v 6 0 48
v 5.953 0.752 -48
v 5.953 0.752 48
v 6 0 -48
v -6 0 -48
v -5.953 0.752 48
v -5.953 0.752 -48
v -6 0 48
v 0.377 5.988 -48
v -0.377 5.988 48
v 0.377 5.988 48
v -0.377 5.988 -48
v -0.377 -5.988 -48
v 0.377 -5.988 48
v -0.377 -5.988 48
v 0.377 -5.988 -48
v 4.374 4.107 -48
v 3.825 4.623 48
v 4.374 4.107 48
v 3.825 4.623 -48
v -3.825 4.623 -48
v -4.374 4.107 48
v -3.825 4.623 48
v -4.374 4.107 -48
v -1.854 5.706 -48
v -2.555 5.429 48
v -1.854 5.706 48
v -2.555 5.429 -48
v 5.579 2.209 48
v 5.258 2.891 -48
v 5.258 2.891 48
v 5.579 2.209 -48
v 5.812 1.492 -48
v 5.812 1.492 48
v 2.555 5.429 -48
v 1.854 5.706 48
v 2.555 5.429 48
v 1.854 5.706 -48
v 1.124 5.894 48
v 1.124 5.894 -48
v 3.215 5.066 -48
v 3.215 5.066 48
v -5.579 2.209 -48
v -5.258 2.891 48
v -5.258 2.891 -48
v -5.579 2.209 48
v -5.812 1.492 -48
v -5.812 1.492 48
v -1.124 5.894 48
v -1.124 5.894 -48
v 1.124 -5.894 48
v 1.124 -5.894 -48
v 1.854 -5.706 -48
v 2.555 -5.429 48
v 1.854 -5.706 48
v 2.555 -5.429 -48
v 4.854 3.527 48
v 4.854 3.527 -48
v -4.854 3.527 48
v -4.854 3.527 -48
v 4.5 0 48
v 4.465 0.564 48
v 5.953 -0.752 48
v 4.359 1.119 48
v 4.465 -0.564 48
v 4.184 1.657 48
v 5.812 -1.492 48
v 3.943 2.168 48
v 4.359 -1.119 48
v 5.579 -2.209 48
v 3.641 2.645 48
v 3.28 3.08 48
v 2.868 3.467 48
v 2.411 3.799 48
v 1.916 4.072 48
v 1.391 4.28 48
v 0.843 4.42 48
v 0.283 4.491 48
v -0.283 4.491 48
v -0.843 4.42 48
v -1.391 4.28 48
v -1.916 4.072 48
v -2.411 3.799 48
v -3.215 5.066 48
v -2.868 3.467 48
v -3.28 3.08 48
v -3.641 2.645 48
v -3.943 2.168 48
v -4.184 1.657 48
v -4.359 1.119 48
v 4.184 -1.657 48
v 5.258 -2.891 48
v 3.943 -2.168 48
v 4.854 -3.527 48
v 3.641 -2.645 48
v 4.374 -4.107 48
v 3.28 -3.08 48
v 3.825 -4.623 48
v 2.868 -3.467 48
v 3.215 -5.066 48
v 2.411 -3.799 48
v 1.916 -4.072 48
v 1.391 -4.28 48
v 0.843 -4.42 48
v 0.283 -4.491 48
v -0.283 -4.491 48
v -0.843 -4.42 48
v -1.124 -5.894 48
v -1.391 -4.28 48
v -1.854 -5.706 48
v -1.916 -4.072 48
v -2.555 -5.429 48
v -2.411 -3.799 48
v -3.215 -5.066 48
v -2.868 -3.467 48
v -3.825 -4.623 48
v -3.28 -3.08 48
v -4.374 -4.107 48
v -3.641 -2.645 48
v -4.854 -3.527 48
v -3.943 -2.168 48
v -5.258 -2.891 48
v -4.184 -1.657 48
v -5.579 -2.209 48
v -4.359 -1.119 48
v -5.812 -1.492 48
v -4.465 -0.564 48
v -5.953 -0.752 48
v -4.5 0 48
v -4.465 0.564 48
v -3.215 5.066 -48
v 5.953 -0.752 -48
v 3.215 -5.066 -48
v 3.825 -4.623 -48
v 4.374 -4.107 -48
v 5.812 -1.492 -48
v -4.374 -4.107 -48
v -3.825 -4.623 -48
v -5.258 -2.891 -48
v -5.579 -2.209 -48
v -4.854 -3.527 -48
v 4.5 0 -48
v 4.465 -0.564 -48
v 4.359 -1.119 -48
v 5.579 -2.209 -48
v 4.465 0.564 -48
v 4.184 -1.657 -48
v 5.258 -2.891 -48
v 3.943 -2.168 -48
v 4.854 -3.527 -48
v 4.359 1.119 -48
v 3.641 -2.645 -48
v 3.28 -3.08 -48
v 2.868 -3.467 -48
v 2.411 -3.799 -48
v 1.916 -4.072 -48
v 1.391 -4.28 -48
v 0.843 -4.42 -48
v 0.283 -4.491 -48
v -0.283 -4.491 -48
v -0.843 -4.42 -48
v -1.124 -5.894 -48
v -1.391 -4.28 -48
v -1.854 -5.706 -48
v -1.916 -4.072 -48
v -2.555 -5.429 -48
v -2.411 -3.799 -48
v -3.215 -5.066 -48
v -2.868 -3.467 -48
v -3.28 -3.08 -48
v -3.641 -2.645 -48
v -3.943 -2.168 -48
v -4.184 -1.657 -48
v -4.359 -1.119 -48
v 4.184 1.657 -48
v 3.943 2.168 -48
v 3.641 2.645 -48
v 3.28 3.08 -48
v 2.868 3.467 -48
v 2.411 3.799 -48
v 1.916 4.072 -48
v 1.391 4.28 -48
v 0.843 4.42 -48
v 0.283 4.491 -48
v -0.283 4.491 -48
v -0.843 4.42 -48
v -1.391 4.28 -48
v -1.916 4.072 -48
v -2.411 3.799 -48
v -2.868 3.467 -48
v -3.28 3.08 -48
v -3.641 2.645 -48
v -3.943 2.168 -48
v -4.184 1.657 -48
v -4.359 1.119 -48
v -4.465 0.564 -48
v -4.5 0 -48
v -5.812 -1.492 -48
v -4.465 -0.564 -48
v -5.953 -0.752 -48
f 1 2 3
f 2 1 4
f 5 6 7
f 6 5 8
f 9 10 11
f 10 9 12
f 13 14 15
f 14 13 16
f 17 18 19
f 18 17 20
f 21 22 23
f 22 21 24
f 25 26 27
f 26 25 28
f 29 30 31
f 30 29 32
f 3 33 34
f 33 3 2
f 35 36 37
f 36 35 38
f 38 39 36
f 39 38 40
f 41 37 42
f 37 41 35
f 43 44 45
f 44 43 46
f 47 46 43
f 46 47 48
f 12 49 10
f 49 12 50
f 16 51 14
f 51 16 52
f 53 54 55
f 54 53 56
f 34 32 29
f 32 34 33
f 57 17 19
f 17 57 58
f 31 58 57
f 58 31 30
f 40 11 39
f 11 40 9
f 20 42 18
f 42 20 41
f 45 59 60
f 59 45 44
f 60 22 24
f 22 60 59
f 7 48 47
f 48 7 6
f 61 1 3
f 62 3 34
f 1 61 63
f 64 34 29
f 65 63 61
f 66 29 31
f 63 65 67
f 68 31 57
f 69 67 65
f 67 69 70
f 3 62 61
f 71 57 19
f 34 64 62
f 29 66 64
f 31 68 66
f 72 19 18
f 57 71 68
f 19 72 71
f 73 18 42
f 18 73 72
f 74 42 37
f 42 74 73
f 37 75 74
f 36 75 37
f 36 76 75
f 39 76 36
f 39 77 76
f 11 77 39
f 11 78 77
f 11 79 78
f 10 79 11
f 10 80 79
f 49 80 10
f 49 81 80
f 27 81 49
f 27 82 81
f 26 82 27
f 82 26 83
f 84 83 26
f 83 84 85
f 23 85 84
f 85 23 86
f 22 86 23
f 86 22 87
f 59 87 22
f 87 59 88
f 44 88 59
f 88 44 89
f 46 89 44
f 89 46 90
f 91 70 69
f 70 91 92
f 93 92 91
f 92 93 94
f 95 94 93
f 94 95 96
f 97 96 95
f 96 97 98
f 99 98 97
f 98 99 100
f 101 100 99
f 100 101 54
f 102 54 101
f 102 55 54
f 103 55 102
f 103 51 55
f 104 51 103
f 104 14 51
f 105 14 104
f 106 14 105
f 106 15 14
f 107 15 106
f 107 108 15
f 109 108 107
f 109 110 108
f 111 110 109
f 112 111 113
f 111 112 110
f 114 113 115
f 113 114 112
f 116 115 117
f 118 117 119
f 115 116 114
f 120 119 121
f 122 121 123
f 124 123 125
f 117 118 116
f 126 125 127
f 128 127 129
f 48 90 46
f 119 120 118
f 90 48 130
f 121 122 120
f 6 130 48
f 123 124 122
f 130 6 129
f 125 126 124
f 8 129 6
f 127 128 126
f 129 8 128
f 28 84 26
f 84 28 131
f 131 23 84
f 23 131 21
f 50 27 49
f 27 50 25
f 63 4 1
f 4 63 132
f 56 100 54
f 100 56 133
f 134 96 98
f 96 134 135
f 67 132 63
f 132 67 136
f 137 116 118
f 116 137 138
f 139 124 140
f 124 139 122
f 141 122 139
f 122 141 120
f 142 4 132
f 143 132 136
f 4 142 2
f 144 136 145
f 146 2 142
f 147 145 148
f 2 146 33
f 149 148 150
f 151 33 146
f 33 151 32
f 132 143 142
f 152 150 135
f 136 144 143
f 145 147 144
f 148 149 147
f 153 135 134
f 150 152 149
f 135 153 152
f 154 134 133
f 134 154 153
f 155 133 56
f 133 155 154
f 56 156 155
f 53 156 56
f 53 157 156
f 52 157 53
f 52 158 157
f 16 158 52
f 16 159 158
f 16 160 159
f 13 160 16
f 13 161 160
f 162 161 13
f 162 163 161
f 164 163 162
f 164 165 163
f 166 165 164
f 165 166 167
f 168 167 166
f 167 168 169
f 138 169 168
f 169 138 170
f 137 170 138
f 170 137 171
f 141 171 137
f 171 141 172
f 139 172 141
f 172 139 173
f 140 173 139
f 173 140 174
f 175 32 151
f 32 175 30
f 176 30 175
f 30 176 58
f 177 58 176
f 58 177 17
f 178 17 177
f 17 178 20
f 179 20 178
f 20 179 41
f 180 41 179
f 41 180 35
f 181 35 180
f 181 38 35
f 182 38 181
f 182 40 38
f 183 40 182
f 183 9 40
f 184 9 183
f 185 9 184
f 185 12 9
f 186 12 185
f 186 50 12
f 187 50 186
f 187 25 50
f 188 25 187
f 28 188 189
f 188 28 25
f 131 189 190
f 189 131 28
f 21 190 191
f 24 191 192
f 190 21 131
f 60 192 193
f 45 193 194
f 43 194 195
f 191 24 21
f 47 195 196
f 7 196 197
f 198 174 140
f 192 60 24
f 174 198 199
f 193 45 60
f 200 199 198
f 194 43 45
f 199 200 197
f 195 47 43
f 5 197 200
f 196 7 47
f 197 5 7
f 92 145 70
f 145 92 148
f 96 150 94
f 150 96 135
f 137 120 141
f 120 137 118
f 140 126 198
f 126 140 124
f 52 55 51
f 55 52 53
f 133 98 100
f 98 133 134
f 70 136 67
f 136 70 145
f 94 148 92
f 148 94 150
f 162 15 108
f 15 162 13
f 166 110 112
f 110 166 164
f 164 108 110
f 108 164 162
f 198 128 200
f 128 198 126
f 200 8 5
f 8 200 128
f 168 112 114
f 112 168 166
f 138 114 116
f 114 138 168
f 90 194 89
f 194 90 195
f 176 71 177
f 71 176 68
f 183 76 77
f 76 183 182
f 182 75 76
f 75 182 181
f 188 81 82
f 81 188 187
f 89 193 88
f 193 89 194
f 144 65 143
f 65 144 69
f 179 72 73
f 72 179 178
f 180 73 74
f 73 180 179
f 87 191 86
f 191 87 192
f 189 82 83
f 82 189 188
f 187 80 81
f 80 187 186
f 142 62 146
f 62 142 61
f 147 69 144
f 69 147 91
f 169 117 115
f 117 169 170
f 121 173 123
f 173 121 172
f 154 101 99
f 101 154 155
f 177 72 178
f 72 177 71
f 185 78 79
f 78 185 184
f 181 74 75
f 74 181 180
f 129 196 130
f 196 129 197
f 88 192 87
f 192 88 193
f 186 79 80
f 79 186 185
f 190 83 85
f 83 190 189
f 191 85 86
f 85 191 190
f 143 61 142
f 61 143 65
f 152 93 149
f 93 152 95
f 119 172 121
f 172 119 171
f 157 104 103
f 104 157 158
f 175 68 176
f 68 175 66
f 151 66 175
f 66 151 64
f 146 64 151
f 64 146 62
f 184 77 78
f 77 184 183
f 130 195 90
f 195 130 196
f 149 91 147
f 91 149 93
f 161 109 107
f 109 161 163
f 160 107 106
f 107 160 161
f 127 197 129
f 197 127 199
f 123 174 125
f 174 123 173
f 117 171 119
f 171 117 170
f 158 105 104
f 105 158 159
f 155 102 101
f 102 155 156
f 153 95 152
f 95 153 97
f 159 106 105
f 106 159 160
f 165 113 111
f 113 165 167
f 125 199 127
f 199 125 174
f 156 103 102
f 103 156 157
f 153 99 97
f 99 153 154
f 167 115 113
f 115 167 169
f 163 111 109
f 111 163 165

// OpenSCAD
$fn = 50;


difference() {
	union() {
		translate(v = [0, 0, -48.0000000000]) {
			cylinder(h = 96, r = 6.0000000000);
		}
	}
	union() {
		translate(v = [0, 0, -100.0000000000]) {
			cylinder(h = 200, r = 4.5000000000);
		}
	}
}
